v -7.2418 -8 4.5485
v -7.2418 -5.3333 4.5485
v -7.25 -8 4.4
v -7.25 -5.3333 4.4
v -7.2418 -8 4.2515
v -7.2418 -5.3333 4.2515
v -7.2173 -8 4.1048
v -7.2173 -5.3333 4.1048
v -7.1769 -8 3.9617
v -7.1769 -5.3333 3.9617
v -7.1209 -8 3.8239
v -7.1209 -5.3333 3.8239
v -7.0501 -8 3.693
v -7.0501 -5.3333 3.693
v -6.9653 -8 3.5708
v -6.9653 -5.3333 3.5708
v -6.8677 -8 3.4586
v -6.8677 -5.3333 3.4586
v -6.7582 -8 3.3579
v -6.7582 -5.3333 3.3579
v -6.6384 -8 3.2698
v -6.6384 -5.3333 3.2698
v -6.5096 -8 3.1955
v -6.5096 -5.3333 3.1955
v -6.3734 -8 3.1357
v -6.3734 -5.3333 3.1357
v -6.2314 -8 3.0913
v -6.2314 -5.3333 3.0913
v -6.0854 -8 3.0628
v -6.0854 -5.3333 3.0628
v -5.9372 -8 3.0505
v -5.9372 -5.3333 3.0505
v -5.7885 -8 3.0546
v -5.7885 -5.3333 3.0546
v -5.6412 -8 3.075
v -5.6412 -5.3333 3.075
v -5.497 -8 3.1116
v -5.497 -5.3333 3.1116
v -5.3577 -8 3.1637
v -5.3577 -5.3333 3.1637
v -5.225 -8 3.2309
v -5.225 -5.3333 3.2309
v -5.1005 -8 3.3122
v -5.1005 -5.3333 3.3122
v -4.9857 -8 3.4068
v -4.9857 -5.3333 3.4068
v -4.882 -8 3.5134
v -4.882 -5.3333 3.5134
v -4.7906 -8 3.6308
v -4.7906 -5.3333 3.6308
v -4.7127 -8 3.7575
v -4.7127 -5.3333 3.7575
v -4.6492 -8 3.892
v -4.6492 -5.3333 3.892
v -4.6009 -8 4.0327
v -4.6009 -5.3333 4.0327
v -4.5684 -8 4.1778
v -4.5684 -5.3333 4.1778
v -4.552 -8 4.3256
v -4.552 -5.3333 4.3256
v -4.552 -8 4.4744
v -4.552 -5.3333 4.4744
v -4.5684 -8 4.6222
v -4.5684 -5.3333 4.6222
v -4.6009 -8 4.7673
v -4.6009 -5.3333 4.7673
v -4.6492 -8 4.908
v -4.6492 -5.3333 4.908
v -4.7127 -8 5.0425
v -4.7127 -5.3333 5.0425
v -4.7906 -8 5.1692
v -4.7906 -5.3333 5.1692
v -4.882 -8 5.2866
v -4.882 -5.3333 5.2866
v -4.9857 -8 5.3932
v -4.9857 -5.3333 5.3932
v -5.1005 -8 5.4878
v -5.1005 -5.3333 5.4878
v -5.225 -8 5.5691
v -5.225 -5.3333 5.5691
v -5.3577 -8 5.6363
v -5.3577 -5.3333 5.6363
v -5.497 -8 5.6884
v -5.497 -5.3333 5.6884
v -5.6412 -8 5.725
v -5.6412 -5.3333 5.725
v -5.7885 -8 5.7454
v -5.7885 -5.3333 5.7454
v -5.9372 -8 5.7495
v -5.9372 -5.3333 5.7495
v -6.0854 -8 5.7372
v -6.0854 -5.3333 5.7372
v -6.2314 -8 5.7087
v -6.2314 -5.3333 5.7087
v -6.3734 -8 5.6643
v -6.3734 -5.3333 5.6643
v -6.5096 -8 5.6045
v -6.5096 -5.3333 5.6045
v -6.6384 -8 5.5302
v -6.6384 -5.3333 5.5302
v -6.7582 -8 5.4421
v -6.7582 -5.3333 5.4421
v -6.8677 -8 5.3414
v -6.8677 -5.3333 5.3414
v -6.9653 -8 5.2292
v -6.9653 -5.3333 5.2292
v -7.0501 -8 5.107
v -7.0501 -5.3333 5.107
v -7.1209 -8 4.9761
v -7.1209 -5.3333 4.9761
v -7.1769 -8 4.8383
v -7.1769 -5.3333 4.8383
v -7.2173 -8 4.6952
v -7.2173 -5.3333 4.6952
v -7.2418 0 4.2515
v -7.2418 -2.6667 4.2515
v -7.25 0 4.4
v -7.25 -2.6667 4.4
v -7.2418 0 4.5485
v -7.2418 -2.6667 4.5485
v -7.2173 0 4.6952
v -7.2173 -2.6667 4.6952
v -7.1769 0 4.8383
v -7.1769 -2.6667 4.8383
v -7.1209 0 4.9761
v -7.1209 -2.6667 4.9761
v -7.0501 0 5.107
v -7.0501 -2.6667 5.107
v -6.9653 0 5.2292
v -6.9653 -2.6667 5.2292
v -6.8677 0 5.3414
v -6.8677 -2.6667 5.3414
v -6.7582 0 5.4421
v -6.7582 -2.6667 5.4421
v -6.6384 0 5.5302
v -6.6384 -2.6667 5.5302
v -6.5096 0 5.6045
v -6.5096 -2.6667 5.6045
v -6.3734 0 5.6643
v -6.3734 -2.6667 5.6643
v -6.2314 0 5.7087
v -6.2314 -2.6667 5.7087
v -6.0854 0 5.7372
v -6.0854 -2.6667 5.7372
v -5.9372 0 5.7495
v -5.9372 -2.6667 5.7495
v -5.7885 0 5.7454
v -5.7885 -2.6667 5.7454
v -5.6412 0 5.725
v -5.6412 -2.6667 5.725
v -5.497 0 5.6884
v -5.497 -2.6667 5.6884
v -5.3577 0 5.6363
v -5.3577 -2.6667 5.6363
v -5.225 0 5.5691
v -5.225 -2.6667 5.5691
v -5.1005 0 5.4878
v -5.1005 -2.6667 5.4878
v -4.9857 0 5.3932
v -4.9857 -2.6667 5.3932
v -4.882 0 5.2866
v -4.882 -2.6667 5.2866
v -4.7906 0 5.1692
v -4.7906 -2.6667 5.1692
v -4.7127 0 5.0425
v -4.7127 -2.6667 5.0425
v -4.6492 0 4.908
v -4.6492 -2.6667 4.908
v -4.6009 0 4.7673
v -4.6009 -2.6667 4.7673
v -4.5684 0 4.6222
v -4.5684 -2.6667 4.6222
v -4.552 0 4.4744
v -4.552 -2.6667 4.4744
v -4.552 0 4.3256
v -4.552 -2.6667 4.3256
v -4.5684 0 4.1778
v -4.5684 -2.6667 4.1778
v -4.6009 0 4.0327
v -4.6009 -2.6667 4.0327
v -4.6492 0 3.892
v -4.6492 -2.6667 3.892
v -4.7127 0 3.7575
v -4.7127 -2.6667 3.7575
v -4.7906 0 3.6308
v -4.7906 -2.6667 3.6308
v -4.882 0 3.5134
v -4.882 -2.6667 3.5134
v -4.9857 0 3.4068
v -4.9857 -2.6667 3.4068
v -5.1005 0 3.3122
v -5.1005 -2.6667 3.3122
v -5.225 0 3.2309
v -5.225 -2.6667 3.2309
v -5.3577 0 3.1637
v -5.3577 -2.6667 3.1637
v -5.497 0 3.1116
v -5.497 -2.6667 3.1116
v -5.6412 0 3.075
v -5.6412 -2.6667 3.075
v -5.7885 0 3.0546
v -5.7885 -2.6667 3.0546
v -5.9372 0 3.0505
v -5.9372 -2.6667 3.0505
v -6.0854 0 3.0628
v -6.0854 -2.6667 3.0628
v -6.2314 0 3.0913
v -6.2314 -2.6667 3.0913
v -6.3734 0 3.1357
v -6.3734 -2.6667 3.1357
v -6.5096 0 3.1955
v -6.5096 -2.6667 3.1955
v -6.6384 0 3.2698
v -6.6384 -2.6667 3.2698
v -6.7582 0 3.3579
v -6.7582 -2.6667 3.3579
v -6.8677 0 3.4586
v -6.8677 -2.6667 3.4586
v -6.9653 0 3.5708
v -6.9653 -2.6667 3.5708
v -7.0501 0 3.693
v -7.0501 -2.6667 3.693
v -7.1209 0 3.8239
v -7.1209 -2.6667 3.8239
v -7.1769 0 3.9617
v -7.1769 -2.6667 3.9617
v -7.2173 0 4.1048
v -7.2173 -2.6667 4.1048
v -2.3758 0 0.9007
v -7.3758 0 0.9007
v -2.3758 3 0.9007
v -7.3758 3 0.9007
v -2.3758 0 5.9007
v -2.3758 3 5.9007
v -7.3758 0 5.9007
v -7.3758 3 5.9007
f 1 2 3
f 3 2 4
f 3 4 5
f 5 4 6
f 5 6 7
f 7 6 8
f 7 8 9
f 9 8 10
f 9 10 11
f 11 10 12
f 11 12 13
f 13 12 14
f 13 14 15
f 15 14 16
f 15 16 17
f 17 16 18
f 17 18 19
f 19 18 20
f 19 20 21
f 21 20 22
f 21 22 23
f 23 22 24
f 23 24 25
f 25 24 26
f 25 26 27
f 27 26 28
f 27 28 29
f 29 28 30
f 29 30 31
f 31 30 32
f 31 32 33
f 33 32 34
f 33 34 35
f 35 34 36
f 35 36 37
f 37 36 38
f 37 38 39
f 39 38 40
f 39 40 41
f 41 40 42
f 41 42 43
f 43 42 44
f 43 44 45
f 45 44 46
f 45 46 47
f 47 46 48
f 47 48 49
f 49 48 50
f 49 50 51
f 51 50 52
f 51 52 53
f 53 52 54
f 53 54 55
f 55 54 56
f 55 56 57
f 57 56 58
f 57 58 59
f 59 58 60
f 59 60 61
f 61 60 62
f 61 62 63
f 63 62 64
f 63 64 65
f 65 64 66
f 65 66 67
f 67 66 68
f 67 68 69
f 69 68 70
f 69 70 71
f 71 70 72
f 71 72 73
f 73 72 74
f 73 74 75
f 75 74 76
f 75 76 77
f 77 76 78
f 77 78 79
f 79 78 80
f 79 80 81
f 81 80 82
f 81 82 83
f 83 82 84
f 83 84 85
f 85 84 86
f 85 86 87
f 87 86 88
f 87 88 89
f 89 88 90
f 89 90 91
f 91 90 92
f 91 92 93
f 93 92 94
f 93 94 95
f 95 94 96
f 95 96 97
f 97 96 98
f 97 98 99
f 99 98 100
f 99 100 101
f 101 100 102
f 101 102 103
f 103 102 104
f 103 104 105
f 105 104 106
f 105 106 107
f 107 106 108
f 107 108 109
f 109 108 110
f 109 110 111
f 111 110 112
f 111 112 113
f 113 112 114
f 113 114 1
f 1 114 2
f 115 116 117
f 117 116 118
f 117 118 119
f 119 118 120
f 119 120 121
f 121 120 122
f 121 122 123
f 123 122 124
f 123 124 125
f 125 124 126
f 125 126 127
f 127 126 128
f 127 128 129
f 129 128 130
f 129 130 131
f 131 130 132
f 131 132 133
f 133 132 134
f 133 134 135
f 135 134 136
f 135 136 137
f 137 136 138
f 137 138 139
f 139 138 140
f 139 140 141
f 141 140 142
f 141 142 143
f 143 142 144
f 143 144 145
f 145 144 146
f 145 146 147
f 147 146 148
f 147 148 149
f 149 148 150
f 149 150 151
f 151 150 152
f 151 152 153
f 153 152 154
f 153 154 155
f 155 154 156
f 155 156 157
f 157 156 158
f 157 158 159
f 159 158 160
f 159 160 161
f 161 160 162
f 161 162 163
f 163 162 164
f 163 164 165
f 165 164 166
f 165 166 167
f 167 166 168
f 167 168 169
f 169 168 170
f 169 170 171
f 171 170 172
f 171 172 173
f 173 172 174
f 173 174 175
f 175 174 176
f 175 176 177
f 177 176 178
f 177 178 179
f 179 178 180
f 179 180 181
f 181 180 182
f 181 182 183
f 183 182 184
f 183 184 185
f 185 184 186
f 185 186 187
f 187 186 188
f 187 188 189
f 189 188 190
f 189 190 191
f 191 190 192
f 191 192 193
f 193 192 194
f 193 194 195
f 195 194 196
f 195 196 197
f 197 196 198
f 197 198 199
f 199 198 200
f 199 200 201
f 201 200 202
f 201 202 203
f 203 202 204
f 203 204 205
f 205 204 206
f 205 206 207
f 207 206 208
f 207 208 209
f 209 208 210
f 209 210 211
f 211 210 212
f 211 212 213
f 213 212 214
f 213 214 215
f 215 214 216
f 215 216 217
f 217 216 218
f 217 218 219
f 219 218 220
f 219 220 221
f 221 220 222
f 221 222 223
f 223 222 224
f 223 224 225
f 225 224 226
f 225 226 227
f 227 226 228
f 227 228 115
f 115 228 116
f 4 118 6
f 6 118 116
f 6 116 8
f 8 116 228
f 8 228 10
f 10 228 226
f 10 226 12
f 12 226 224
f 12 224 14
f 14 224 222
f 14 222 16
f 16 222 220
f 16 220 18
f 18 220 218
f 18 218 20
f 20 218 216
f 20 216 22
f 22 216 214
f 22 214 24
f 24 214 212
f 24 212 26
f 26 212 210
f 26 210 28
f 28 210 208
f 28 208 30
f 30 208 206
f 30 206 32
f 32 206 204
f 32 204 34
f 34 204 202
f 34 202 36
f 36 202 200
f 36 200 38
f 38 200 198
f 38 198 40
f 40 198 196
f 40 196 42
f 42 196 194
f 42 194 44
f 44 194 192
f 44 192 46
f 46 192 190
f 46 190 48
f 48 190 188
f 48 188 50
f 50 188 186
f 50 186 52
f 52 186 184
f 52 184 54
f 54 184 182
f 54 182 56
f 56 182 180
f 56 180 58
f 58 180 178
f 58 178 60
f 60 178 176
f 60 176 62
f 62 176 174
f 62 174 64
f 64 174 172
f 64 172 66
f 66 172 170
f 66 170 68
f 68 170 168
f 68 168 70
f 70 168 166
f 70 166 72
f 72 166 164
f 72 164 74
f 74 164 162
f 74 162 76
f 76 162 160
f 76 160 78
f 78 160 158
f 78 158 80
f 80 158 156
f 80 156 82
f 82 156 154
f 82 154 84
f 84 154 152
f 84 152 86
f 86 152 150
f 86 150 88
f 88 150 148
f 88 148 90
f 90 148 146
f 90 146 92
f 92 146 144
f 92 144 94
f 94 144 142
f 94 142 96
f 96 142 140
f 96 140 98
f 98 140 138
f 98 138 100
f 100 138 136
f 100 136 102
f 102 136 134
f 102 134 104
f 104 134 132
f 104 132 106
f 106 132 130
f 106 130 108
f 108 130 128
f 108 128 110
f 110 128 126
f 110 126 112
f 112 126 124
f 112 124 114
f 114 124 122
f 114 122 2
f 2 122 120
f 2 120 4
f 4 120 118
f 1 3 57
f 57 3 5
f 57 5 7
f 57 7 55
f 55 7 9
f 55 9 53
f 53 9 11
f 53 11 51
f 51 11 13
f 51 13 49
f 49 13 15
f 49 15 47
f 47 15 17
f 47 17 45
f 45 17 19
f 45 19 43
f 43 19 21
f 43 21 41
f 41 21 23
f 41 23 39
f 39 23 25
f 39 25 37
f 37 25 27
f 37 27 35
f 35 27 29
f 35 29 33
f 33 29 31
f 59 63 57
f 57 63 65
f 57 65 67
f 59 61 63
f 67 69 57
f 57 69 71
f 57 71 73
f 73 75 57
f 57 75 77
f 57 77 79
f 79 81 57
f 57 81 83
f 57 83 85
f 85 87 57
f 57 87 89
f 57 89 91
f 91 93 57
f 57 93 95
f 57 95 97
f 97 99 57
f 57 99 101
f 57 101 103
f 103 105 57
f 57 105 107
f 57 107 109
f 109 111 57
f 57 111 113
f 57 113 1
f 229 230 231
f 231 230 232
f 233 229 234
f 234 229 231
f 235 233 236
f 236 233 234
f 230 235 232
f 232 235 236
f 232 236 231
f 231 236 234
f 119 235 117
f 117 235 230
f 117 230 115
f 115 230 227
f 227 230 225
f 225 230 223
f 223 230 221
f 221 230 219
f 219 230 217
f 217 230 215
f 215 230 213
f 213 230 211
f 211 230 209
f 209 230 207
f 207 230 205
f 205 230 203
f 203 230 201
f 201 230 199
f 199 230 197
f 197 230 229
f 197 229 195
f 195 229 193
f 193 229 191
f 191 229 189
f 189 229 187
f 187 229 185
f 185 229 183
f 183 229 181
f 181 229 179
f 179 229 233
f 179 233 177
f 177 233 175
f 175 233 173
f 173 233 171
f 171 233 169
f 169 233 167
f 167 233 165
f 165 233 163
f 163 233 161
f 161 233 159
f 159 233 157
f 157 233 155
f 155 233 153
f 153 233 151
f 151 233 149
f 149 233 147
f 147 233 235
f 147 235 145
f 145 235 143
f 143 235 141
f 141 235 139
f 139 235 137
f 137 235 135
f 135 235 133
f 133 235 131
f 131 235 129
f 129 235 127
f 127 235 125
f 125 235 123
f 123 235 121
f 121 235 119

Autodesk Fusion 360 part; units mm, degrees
sketch "Skizze1" plane through (0, 0, 0) normal (0, 1, 0) x (1, 0, 0)
  line L0 (-7.3758, -5.9007) -> (-2.3758, -5.9007)
  line L1 (-2.3758, -5.9007) -> (-2.3758, -0.9007)
  line L2 (-2.3758, -0.9007) -> (-7.3758, -0.9007)
  line L3 (-7.3758, -0.9007) -> (-7.3758, -5.9007)
  circle A0 centre (-5.9, -4.4) radius 1.35
  dimension "d1" = 5
  dimension "d2" = 5
  dimension "d8" = 2.7
extrude "Extrusion1" add sketch "Skizze1" along normal blind 3 contours L0 L1 L2 L3 | A0
sketch "Skizze3" plane through (0, 0, 0) normal (0, -1, 0) x (1, 0, 0)
  line L0 (-7.3758, 5.9007) -> (-7.3758, 0.9007)
  line L1 (-7.3758, 0.9007) -> (-2.3758, 0.9007)
  line L2 (-2.3758, 0.9007) -> (-2.3758, 5.9007)
  line L3 (-2.3758, 5.9007) -> (-7.3758, 5.9007)
  circle A0 centre (-5.9, 4.4) radius 1.35
  dimension "d9" = 2.7
extrude "Extrusion3" add sketch "Skizze3" along normal blind 8 contours A0
